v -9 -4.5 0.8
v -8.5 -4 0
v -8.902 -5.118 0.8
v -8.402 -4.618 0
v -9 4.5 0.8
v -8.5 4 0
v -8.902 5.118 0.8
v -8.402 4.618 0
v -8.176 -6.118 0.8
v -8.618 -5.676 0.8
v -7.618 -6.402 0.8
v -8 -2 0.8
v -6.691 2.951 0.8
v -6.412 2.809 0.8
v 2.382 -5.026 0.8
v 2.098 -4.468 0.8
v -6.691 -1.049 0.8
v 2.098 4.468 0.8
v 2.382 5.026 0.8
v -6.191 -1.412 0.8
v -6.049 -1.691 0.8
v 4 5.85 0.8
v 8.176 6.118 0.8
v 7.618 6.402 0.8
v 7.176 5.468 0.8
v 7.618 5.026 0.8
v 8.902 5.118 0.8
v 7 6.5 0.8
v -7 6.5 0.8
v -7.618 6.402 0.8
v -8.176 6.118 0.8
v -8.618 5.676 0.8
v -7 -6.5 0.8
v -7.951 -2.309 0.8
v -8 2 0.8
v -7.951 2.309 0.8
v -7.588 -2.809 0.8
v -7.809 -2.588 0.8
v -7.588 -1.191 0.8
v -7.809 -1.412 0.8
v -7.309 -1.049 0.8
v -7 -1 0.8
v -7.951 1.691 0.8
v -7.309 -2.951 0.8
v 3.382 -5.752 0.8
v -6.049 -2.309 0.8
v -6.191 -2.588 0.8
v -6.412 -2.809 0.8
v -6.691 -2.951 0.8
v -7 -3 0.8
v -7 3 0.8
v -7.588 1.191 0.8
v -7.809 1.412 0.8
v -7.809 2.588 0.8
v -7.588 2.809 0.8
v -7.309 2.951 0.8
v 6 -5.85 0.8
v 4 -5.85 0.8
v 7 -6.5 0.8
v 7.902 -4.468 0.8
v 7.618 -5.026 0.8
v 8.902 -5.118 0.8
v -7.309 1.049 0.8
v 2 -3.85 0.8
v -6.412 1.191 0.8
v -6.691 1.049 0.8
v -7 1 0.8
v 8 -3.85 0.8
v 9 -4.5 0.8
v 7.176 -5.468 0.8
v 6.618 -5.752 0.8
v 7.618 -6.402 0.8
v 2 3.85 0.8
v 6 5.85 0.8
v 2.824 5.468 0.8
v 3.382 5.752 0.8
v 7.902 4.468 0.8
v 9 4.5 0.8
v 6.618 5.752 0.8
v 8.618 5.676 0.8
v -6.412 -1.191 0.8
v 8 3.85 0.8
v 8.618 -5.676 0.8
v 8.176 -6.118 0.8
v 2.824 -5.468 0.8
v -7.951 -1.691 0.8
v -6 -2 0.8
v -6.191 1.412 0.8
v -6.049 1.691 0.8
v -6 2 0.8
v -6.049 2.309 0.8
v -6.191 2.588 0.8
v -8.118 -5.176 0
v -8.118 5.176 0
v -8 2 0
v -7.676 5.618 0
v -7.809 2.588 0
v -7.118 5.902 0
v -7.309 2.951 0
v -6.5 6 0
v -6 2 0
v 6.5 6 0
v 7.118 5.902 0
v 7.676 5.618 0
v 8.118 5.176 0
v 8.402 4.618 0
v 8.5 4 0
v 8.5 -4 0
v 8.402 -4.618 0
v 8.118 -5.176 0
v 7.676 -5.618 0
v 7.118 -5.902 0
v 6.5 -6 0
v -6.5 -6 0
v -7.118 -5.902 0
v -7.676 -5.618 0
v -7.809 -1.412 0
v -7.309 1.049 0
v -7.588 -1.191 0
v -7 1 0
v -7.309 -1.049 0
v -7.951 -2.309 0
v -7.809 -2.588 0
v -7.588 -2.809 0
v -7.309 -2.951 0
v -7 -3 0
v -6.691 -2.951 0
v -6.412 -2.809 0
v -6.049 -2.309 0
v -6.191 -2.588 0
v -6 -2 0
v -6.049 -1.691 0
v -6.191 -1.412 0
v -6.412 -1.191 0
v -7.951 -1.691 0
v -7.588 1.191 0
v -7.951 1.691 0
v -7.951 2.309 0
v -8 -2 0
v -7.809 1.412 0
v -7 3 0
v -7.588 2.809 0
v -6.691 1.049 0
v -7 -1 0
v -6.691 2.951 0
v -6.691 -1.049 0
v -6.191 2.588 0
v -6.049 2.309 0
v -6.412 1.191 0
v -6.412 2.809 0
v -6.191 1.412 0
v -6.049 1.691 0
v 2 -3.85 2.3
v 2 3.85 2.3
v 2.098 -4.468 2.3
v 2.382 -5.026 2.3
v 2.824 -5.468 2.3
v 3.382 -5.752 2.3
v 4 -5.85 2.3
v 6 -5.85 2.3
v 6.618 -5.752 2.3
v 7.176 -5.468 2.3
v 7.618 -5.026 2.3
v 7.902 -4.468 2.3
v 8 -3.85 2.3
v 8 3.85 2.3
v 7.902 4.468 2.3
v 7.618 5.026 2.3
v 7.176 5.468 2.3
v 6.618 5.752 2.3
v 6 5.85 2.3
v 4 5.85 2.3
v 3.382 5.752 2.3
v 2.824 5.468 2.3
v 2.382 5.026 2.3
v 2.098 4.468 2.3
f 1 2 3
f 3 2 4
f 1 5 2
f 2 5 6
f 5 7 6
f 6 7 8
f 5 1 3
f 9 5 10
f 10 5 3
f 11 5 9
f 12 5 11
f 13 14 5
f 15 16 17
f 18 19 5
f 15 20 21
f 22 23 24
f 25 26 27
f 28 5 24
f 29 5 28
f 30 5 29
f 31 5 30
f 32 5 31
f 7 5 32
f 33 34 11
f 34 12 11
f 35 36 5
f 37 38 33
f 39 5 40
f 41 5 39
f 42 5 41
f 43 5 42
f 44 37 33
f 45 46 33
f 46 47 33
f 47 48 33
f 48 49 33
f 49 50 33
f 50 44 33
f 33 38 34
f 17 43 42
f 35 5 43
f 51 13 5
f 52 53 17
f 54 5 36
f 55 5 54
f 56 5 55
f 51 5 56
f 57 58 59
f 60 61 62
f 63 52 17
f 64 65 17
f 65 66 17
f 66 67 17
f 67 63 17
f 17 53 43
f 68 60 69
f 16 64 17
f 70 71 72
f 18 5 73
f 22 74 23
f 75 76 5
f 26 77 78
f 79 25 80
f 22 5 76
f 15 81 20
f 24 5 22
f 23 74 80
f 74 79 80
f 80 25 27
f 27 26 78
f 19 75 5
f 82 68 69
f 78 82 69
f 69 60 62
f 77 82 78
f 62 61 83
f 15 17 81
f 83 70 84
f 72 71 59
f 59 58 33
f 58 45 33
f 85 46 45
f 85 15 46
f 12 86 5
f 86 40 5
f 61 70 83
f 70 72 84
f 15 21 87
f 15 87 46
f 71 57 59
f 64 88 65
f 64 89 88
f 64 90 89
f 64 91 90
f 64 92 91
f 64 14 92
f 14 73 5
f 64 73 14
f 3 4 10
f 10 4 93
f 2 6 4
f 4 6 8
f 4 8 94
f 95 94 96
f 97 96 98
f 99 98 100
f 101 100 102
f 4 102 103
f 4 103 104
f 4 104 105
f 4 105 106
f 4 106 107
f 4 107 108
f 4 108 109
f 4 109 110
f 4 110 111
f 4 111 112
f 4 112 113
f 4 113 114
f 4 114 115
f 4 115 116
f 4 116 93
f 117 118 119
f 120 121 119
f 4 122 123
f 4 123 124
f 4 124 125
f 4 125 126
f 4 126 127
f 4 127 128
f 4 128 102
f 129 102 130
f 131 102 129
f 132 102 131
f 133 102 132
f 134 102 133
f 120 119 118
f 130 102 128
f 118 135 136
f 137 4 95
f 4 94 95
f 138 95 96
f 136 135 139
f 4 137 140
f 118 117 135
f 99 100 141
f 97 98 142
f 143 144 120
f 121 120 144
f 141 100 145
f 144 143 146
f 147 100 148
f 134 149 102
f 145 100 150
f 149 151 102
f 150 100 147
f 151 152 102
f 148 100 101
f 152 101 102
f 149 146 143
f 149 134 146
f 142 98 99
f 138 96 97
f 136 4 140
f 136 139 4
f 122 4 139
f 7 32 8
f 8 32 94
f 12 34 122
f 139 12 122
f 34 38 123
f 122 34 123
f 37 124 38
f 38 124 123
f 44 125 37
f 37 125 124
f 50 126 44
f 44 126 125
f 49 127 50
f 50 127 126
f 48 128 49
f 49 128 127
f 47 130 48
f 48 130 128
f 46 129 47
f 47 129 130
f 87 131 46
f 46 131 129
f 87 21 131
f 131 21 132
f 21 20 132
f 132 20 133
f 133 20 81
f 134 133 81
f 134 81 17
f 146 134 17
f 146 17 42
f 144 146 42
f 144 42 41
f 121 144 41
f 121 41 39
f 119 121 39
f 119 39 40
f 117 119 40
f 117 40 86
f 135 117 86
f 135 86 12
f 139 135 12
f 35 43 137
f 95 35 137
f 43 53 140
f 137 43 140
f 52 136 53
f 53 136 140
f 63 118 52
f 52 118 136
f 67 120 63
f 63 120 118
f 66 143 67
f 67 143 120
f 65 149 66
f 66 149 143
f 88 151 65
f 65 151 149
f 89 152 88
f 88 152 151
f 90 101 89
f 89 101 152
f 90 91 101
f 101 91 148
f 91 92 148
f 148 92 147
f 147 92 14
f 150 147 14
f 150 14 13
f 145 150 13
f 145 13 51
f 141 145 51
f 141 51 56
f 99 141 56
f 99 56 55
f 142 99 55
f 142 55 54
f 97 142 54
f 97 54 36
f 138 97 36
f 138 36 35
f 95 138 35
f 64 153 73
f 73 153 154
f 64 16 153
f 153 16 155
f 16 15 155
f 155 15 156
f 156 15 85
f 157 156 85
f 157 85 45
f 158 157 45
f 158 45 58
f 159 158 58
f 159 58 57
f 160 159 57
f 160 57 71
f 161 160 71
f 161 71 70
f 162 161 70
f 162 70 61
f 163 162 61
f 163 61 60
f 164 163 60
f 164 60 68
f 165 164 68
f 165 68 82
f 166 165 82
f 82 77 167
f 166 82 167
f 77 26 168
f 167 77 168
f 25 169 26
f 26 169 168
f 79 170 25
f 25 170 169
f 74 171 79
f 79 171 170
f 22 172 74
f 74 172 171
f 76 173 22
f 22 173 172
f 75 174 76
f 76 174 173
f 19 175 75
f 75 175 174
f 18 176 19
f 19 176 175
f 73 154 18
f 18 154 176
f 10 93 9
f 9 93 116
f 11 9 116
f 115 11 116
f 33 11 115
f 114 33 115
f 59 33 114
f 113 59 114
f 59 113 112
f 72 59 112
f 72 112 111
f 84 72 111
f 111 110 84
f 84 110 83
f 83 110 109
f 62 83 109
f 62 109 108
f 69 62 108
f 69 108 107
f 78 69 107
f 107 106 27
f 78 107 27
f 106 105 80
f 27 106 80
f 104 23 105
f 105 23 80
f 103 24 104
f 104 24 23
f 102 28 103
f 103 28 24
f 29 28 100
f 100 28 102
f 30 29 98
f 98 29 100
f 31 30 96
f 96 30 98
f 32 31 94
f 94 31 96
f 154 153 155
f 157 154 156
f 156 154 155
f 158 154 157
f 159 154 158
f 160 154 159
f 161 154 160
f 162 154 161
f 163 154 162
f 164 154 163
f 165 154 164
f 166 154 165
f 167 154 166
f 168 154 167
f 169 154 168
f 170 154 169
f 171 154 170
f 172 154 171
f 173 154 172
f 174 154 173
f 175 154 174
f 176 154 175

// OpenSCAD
// Vector-9000 - fast line follower robot (version 1.0)
// by Carlosgs (http://carlosgs.es) and Víctor Uceda
// CC-BY-SA license (http://creativecommons.org/licenses/by-sa/3.0/)
// Check http://www.thingiverse.com/thing:65012 for more information

difference() {
union() {
hull() {
  roundedRect2D([18-1,13-1,0.0001], 2);
  translate([0,0,0.8]) roundedRect2D([18,13,0.0001], 2);
}
translate([5,0,0.8+1.5/2]) roundedRect2D([18/3,13*0.9,1.5], 2);
}
translate([-7,0,0.8+1.5/2]) {
translate([0,2,0]) cylinder(r=2/2,h=100,center=true,$fn=20);
translate([0,-2,0]) cylinder(r=2/2,h=100,center=true,$fn=20);
}
}
// http://www.thingiverse.com/thing:9347
module roundedRect2D(size, radius)
{
$fn=20;
x = size[0]-radius*2;
y = size[1]-radius*2;
z = size[2];

minkowski()
{
cube(size=[x,y,z],center=true);
cylinder(r=radius,h=0.00001);
}
}
